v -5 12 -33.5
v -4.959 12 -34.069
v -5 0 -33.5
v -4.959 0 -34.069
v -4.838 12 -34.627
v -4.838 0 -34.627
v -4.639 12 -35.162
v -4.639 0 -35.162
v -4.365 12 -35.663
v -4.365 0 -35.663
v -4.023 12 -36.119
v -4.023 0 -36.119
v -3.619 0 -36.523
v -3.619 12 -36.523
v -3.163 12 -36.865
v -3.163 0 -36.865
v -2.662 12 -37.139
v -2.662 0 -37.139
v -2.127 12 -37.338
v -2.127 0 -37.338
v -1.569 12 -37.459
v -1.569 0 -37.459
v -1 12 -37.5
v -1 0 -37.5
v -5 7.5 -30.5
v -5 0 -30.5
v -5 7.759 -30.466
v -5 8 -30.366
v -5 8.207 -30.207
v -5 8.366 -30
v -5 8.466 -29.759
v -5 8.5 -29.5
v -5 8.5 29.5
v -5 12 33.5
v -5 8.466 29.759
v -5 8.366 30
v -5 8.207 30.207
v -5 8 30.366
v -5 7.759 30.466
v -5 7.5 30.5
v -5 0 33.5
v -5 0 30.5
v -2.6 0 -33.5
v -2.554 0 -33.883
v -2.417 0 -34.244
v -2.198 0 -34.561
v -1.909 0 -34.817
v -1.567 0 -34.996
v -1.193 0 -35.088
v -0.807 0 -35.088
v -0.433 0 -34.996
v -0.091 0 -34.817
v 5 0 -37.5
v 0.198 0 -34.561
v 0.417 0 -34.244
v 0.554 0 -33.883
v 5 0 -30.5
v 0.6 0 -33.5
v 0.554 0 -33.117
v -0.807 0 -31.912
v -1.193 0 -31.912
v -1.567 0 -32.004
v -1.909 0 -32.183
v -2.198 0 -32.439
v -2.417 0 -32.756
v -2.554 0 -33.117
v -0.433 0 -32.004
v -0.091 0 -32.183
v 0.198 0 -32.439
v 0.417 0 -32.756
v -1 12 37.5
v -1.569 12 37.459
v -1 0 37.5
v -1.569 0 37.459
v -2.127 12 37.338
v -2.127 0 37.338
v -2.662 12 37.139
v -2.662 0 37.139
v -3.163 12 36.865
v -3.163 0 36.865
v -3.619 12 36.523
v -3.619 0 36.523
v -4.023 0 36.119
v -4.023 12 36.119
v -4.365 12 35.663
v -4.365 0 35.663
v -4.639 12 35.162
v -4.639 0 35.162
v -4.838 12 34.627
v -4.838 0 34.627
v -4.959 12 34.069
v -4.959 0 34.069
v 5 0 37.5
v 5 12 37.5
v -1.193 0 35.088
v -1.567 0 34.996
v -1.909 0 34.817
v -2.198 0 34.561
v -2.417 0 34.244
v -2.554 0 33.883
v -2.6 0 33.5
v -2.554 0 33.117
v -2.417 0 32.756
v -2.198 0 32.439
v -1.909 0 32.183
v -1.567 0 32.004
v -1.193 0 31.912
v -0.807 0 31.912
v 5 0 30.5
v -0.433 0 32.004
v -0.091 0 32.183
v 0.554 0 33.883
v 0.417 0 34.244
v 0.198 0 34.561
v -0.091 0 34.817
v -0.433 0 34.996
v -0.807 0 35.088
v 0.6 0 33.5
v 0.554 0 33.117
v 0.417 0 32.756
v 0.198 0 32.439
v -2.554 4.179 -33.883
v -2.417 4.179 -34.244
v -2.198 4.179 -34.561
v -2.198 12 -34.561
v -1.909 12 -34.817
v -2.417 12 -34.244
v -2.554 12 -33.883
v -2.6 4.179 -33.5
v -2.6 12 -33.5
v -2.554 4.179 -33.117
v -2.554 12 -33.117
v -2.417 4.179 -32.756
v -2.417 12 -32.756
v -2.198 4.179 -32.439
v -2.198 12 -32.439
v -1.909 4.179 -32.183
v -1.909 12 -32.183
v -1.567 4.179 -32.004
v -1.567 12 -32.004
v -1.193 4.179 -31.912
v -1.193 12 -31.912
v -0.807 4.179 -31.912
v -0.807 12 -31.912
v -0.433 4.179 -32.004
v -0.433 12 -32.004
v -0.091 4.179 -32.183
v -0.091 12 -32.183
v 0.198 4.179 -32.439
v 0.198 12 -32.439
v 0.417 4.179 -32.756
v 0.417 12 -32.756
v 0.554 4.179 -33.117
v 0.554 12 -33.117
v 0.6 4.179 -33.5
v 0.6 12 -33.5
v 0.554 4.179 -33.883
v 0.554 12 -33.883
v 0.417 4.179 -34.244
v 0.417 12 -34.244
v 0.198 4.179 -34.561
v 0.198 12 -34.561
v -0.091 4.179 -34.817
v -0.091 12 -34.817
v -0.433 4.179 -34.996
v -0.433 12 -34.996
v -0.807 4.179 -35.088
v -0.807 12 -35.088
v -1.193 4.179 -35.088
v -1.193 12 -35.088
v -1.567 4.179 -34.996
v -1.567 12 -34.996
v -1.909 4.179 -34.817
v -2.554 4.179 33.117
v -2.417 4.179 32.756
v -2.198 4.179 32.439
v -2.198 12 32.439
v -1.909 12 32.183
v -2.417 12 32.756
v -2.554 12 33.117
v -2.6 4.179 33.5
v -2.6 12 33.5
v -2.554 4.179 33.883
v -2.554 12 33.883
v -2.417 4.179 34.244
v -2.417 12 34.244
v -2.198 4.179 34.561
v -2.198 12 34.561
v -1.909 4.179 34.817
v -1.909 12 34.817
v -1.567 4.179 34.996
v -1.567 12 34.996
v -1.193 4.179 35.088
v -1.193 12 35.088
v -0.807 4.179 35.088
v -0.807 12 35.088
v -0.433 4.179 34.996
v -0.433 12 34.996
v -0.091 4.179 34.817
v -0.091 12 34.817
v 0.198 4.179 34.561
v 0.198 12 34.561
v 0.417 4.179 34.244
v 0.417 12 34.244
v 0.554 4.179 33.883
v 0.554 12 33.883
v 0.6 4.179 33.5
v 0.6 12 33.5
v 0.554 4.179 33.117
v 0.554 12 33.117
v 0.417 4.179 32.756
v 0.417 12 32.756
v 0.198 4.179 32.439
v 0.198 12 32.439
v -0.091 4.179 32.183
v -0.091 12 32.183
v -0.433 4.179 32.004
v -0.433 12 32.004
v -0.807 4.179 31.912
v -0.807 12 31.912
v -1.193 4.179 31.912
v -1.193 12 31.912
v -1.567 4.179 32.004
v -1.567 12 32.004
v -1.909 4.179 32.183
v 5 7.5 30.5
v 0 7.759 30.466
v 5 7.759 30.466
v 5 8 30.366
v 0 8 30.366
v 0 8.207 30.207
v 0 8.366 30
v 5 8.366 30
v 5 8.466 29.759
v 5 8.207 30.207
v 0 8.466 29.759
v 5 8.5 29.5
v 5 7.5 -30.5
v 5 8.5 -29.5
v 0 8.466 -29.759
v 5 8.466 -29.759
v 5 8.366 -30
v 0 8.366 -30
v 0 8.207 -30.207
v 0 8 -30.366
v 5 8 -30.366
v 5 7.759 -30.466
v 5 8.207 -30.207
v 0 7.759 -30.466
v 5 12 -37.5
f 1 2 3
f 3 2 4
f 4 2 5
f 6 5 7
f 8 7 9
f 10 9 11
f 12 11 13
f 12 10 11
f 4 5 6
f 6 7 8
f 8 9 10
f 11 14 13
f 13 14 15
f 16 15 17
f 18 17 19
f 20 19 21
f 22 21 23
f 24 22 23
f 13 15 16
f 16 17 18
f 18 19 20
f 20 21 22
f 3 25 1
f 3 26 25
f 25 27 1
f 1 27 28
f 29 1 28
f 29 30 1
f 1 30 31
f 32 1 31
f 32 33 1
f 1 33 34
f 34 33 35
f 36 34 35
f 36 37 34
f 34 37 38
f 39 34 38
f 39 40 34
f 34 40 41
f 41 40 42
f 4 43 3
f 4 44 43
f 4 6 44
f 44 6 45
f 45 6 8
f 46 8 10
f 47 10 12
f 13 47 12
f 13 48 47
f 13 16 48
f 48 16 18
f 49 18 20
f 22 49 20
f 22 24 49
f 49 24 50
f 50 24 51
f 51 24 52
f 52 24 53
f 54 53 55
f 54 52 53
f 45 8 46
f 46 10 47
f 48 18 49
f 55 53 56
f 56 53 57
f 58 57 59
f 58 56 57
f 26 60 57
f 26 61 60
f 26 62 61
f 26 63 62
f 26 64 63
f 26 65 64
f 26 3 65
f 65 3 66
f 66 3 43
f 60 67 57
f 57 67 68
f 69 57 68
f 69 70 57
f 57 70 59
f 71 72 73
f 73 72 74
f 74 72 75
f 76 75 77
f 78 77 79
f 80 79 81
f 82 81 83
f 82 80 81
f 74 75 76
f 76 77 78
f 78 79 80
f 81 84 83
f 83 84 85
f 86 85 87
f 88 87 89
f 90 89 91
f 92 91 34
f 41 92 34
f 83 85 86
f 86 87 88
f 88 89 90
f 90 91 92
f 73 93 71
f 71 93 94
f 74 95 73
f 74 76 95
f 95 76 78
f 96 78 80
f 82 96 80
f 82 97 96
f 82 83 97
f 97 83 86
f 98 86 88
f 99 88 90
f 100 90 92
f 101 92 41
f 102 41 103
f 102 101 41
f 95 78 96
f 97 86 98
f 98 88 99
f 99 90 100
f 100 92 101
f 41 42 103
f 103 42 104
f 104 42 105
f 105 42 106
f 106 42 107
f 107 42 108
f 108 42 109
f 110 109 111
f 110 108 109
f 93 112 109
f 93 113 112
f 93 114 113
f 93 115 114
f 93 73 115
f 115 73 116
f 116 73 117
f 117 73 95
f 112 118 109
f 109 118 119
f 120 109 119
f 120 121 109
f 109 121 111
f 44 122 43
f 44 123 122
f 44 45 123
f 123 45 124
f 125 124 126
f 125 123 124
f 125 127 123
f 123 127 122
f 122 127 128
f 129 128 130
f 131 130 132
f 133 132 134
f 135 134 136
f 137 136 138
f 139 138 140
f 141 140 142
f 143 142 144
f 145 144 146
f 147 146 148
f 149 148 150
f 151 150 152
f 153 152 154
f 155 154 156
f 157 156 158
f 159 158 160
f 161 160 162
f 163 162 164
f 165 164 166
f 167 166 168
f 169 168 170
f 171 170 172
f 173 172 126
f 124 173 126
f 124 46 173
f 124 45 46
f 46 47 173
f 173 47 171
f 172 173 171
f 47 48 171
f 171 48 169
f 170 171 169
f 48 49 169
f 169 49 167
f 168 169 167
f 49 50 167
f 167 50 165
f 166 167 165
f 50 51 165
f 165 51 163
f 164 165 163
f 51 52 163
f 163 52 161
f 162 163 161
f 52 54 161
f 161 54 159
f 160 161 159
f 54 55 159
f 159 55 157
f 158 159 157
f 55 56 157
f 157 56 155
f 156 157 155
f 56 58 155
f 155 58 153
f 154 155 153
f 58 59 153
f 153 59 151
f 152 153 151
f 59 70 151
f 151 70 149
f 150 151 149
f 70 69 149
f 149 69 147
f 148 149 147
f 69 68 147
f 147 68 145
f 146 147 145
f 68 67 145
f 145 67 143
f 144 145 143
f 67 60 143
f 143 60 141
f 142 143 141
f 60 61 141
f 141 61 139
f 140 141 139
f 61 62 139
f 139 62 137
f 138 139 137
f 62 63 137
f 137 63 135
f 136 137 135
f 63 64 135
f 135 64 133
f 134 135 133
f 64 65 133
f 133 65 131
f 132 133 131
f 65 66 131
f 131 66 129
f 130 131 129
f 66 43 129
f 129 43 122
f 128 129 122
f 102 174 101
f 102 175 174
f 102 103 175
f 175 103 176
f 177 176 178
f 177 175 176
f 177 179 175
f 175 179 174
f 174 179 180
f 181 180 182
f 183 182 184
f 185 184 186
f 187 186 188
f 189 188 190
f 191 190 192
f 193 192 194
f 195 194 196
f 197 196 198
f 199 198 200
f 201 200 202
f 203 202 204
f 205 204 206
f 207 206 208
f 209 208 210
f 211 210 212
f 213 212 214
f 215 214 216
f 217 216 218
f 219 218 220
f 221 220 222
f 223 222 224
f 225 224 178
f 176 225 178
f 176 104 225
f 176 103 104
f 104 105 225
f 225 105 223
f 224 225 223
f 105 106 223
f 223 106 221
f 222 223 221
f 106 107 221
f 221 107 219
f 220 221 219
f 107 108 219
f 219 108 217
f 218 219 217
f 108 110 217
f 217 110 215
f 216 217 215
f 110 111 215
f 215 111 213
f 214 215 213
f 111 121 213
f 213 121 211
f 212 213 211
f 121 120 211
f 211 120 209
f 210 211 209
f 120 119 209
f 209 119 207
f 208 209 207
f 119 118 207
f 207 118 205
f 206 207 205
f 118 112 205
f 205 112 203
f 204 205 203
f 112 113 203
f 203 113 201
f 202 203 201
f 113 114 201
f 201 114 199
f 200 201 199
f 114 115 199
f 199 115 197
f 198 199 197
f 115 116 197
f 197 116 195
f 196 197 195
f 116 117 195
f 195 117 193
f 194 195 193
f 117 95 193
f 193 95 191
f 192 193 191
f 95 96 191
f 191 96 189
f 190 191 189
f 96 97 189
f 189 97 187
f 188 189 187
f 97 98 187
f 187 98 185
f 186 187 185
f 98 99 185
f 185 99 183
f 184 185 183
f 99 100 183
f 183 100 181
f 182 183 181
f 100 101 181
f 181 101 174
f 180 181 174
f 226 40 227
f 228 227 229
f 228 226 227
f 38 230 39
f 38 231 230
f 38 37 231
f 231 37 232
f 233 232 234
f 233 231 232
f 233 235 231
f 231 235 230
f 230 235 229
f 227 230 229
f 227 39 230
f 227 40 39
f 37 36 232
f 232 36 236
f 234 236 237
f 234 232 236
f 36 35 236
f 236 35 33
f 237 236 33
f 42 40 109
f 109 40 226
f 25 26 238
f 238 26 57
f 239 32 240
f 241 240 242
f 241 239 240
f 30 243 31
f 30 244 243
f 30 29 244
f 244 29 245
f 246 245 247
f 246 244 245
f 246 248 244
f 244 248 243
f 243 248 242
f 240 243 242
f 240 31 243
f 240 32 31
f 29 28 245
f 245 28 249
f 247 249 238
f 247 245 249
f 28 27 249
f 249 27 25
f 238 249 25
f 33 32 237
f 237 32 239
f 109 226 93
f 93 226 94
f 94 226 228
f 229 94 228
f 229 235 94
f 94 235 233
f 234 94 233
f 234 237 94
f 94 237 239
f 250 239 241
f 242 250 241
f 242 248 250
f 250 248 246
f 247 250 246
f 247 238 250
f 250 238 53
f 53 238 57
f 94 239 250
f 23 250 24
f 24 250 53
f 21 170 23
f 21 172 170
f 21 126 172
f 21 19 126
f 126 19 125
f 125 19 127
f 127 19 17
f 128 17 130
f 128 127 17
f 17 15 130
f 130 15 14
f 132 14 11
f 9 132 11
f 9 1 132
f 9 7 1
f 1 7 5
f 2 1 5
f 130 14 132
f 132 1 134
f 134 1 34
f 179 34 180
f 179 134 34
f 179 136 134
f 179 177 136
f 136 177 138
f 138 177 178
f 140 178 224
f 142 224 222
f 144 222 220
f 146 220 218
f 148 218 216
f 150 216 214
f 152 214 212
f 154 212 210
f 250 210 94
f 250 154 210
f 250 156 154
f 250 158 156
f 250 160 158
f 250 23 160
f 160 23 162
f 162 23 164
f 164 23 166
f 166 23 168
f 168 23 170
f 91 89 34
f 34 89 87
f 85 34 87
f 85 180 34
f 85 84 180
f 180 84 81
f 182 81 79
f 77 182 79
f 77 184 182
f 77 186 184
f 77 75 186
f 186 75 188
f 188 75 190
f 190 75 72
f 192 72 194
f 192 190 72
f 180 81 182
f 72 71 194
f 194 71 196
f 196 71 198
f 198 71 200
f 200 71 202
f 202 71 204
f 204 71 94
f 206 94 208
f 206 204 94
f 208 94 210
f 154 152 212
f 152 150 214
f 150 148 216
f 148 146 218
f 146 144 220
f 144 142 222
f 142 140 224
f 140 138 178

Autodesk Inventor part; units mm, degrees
ref_plane "YZ Plane" through (0, 0, 0) normal (1, 0, 0) x (0, 1, 0)
ref_plane "XZ Plane" through (0, 0, 0) normal (0, 1, 0) x (-1, 0, 0)
ref_plane "XY Plane" through (0, 0, 0) normal (0, 0, 1) x (1, 0, 0)
sketch "Sketch1" plane through (0, 0, 0) normal (0, 1, 0) x (-1, 0, 0)
  line L0 (5, 37.5) -> (-5, 37.5)
  line L1 (-5, 37.5) -> (-5, -37.5)
  line L2 (-5, -37.5) -> (5, -37.5)
  line L3 (5, -37.5) -> (5, 37.5)
  point P0 (0, 0)
  point P1 (5, 0)
  point P2 (0, 37.5)
  dimension "d0" = 10
  dimension "d1" = 75
extrude "Extrusion1" add sketch "Sketch1" along normal blind 12
sketch "Sketch2" plane through (5, 0, 37.5) normal (1, 0, 0) x (0, 0, -1)
  line L0 (7, 0) -> (68, 0)
  line L1 (68, 0) -> (68, 7.5)
  line L2 (67, 8.5) -> (8, 8.5)
  line L3 (7, 7.5) -> (7, 0)
  line L4 (0, 0) -> (75, 0) projected
  arc A0 (8, 8.5) -> (7, 7.5) centre (8, 7.5) ccw
  arc A1 (68, 7.5) -> (67, 8.5) centre (67, 7.5) ccw
  point P0 (37.5, 0)
  point P1 (37.5, 0)
  dimension "d4" = 61
  dimension "d5" = 8.5
  dimension "d6" = 1
extrude "Extrusion2" cut sketch "Sketch2" against normal through all
sketch "Sketch3" plane through (0, 12, 0) normal (0, 1, 0) x (1, 0, 0)
  line L0 (-5, 37.5) -> (-5, -37.5) projected
  point P0 (0, 0)
  point P1 (-1, 33.5)
  point P2 (-1, -33.5)
  dimension "d9" = 67
  dimension "d19" = 4
  dimension "d20" = 33.5
hole "Hole1" at (-1, 12, -33.5) at (-1, 12, 33.5) direction (0, -1, 0) diameter 3.2 end through all
fillet "Fillet1" radius 4 2 edges at (-5, 6, 37.5) (-5, 6, -37.5)
equation "\"d20\" = 0.5 * d9"
properties part number "phone_clamp"
